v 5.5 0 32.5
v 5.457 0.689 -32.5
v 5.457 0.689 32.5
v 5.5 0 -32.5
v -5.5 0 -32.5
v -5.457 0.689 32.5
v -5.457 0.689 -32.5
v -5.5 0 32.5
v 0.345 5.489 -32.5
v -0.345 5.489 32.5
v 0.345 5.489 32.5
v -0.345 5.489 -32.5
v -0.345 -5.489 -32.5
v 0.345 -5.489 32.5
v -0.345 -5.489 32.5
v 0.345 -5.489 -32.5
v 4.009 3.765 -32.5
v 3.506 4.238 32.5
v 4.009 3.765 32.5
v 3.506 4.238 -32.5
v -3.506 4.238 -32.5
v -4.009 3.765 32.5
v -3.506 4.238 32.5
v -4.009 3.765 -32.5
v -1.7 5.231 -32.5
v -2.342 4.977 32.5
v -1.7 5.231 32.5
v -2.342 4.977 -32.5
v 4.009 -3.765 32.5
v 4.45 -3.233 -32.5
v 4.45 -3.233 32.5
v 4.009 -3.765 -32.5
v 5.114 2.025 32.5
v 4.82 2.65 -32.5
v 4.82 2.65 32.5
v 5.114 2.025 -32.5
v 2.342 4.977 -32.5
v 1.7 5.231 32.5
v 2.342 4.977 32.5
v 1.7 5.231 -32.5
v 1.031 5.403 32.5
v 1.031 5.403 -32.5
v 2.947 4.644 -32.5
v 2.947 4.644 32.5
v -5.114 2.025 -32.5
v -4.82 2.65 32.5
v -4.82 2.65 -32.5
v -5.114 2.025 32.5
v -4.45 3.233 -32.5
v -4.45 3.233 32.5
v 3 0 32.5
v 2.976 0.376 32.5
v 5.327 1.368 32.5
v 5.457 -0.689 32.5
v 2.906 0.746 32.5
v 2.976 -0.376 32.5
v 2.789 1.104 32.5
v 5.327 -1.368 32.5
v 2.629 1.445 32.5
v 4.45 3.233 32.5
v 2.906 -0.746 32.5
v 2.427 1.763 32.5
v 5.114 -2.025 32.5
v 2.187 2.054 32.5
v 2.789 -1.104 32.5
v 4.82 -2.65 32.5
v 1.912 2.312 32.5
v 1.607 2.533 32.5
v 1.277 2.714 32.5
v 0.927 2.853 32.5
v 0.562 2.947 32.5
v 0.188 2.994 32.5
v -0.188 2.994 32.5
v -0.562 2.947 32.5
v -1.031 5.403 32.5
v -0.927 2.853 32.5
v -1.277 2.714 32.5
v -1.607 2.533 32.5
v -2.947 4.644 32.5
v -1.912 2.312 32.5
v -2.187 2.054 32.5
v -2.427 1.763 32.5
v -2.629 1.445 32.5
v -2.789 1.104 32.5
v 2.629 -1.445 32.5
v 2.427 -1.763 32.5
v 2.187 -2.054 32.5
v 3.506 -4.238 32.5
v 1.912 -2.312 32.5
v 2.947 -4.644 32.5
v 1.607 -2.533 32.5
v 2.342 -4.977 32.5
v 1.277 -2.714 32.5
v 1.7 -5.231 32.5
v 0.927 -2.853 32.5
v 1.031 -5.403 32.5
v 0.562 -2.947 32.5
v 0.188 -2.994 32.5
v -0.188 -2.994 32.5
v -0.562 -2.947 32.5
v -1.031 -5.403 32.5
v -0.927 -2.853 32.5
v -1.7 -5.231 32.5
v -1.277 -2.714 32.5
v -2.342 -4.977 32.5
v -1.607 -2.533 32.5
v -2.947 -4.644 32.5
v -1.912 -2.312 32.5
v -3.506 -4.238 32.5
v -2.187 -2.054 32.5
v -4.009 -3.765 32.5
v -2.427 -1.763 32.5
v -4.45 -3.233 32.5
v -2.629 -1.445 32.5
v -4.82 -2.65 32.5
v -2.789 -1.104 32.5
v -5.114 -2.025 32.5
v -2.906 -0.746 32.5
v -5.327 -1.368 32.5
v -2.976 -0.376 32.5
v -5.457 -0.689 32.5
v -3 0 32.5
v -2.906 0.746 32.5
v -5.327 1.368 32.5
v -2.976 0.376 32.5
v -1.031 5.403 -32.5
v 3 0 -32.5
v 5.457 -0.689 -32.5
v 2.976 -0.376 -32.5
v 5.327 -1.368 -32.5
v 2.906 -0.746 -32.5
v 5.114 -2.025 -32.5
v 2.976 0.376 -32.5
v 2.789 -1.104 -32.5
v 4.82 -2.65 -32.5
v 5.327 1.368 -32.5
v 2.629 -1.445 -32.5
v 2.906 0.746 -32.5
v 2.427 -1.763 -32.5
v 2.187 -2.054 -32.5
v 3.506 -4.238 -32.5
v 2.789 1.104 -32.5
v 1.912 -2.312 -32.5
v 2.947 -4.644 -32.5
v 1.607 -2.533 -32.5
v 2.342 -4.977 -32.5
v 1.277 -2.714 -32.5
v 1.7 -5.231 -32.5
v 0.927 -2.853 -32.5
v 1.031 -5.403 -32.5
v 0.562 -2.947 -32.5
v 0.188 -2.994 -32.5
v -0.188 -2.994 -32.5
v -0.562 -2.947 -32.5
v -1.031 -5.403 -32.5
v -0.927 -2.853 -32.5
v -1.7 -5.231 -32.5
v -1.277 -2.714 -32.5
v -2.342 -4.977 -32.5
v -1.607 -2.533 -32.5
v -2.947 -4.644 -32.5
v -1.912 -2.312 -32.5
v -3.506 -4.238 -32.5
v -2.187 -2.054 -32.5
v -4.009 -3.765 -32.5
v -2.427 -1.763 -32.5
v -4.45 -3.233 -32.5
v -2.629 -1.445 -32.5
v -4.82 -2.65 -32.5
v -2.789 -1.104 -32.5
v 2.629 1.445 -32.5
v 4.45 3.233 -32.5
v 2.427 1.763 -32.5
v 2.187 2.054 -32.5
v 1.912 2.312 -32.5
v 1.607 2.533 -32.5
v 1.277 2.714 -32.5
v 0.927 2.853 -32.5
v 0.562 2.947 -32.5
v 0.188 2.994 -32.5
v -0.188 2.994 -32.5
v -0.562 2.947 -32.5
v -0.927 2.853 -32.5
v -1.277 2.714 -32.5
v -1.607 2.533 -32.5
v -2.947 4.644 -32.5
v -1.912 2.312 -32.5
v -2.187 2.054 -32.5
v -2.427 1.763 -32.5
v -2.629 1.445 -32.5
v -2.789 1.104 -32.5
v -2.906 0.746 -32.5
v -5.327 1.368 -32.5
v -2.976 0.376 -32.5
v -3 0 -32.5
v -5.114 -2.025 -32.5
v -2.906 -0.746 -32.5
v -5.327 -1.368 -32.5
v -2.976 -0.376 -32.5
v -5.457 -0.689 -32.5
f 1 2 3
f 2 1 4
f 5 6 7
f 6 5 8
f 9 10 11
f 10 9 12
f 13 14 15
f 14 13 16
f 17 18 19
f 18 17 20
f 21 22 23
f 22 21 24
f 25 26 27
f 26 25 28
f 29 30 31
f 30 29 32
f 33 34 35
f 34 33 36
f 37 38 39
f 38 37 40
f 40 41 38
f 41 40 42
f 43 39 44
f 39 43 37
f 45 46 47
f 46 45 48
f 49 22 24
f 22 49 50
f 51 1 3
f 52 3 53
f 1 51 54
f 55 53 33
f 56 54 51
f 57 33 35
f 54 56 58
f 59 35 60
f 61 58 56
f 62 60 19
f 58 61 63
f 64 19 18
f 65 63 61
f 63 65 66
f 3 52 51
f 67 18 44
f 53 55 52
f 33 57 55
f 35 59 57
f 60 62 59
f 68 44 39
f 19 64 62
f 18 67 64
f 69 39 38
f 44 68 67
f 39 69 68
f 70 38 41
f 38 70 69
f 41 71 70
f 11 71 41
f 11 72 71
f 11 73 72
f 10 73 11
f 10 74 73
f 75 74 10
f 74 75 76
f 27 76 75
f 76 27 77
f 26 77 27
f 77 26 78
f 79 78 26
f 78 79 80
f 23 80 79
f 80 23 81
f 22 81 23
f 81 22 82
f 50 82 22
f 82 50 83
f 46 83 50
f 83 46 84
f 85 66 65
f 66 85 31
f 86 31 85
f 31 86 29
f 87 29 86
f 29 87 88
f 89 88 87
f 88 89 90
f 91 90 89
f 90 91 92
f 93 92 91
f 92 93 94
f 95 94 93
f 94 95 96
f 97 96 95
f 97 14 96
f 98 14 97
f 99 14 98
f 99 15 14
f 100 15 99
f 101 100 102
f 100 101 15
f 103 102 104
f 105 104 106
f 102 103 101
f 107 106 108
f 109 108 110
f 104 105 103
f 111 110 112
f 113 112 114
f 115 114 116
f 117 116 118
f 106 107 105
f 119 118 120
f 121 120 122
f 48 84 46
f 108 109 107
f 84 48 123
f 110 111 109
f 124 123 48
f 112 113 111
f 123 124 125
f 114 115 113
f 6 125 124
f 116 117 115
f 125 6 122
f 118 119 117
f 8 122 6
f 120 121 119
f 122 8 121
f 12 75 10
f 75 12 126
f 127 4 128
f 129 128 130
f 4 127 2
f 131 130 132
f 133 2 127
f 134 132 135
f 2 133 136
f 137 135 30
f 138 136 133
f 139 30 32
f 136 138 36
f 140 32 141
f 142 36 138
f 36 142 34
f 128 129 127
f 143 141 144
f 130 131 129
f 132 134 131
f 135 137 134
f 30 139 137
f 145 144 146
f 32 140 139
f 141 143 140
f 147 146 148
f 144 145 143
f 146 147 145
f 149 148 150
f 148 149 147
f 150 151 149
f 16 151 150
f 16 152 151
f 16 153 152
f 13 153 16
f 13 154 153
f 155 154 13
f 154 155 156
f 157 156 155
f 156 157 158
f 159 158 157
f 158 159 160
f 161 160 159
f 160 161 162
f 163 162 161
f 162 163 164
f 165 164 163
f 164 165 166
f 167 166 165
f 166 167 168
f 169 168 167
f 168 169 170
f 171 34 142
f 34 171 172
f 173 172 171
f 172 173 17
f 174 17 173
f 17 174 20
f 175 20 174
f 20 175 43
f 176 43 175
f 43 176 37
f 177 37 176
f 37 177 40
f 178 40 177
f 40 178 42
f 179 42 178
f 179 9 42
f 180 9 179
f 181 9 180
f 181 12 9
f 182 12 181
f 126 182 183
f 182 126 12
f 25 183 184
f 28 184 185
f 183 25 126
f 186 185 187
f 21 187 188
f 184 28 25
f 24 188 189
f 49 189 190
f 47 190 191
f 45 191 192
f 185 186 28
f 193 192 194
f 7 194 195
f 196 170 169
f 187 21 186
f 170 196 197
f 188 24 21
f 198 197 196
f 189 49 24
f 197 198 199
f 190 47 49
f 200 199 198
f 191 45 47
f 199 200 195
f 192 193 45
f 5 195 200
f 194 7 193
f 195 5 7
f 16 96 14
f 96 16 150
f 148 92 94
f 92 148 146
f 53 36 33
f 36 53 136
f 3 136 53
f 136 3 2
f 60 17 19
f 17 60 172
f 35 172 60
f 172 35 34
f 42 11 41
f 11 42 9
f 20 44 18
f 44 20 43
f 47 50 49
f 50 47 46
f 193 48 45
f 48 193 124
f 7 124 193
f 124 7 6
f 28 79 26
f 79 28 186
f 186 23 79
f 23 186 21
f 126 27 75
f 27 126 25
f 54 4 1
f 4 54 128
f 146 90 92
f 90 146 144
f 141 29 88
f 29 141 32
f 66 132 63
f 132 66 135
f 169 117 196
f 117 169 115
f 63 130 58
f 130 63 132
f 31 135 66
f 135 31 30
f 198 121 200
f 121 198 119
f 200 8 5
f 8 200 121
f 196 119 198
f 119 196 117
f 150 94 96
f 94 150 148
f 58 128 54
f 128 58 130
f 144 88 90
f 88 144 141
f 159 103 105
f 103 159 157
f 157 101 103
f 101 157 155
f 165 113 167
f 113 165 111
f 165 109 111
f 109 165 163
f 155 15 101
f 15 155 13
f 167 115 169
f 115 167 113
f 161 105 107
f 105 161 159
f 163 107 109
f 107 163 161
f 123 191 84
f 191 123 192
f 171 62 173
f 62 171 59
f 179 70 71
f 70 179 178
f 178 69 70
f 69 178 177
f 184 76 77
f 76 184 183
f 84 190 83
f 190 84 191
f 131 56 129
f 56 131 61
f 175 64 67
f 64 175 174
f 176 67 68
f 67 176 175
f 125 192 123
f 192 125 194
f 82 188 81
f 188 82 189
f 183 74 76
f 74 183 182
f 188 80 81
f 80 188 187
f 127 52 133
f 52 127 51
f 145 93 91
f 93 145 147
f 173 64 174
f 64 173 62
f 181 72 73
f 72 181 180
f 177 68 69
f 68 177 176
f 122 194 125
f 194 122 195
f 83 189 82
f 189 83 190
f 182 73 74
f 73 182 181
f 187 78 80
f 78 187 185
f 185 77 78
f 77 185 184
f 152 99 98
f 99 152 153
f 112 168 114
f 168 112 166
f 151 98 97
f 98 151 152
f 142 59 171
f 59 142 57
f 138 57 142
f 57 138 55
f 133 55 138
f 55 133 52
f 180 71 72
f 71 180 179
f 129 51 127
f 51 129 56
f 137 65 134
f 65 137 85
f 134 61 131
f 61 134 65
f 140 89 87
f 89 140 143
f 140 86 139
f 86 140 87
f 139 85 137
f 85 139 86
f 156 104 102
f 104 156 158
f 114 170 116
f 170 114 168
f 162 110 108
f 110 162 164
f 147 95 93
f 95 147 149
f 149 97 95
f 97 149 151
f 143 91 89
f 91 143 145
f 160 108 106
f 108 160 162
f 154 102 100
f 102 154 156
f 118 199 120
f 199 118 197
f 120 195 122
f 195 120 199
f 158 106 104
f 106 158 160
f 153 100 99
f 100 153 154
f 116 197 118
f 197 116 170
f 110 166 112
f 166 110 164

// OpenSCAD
$fn = 50;


difference() {
	union() {
		translate(v = [0, 0, -32.5000000000]) {
			cylinder(h = 65, r = 5.5000000000);
		}
	}
	union() {
		translate(v = [0, 0, -100.0000000000]) {
			cylinder(h = 200, r = 3.0000000000);
		}
	}
}
